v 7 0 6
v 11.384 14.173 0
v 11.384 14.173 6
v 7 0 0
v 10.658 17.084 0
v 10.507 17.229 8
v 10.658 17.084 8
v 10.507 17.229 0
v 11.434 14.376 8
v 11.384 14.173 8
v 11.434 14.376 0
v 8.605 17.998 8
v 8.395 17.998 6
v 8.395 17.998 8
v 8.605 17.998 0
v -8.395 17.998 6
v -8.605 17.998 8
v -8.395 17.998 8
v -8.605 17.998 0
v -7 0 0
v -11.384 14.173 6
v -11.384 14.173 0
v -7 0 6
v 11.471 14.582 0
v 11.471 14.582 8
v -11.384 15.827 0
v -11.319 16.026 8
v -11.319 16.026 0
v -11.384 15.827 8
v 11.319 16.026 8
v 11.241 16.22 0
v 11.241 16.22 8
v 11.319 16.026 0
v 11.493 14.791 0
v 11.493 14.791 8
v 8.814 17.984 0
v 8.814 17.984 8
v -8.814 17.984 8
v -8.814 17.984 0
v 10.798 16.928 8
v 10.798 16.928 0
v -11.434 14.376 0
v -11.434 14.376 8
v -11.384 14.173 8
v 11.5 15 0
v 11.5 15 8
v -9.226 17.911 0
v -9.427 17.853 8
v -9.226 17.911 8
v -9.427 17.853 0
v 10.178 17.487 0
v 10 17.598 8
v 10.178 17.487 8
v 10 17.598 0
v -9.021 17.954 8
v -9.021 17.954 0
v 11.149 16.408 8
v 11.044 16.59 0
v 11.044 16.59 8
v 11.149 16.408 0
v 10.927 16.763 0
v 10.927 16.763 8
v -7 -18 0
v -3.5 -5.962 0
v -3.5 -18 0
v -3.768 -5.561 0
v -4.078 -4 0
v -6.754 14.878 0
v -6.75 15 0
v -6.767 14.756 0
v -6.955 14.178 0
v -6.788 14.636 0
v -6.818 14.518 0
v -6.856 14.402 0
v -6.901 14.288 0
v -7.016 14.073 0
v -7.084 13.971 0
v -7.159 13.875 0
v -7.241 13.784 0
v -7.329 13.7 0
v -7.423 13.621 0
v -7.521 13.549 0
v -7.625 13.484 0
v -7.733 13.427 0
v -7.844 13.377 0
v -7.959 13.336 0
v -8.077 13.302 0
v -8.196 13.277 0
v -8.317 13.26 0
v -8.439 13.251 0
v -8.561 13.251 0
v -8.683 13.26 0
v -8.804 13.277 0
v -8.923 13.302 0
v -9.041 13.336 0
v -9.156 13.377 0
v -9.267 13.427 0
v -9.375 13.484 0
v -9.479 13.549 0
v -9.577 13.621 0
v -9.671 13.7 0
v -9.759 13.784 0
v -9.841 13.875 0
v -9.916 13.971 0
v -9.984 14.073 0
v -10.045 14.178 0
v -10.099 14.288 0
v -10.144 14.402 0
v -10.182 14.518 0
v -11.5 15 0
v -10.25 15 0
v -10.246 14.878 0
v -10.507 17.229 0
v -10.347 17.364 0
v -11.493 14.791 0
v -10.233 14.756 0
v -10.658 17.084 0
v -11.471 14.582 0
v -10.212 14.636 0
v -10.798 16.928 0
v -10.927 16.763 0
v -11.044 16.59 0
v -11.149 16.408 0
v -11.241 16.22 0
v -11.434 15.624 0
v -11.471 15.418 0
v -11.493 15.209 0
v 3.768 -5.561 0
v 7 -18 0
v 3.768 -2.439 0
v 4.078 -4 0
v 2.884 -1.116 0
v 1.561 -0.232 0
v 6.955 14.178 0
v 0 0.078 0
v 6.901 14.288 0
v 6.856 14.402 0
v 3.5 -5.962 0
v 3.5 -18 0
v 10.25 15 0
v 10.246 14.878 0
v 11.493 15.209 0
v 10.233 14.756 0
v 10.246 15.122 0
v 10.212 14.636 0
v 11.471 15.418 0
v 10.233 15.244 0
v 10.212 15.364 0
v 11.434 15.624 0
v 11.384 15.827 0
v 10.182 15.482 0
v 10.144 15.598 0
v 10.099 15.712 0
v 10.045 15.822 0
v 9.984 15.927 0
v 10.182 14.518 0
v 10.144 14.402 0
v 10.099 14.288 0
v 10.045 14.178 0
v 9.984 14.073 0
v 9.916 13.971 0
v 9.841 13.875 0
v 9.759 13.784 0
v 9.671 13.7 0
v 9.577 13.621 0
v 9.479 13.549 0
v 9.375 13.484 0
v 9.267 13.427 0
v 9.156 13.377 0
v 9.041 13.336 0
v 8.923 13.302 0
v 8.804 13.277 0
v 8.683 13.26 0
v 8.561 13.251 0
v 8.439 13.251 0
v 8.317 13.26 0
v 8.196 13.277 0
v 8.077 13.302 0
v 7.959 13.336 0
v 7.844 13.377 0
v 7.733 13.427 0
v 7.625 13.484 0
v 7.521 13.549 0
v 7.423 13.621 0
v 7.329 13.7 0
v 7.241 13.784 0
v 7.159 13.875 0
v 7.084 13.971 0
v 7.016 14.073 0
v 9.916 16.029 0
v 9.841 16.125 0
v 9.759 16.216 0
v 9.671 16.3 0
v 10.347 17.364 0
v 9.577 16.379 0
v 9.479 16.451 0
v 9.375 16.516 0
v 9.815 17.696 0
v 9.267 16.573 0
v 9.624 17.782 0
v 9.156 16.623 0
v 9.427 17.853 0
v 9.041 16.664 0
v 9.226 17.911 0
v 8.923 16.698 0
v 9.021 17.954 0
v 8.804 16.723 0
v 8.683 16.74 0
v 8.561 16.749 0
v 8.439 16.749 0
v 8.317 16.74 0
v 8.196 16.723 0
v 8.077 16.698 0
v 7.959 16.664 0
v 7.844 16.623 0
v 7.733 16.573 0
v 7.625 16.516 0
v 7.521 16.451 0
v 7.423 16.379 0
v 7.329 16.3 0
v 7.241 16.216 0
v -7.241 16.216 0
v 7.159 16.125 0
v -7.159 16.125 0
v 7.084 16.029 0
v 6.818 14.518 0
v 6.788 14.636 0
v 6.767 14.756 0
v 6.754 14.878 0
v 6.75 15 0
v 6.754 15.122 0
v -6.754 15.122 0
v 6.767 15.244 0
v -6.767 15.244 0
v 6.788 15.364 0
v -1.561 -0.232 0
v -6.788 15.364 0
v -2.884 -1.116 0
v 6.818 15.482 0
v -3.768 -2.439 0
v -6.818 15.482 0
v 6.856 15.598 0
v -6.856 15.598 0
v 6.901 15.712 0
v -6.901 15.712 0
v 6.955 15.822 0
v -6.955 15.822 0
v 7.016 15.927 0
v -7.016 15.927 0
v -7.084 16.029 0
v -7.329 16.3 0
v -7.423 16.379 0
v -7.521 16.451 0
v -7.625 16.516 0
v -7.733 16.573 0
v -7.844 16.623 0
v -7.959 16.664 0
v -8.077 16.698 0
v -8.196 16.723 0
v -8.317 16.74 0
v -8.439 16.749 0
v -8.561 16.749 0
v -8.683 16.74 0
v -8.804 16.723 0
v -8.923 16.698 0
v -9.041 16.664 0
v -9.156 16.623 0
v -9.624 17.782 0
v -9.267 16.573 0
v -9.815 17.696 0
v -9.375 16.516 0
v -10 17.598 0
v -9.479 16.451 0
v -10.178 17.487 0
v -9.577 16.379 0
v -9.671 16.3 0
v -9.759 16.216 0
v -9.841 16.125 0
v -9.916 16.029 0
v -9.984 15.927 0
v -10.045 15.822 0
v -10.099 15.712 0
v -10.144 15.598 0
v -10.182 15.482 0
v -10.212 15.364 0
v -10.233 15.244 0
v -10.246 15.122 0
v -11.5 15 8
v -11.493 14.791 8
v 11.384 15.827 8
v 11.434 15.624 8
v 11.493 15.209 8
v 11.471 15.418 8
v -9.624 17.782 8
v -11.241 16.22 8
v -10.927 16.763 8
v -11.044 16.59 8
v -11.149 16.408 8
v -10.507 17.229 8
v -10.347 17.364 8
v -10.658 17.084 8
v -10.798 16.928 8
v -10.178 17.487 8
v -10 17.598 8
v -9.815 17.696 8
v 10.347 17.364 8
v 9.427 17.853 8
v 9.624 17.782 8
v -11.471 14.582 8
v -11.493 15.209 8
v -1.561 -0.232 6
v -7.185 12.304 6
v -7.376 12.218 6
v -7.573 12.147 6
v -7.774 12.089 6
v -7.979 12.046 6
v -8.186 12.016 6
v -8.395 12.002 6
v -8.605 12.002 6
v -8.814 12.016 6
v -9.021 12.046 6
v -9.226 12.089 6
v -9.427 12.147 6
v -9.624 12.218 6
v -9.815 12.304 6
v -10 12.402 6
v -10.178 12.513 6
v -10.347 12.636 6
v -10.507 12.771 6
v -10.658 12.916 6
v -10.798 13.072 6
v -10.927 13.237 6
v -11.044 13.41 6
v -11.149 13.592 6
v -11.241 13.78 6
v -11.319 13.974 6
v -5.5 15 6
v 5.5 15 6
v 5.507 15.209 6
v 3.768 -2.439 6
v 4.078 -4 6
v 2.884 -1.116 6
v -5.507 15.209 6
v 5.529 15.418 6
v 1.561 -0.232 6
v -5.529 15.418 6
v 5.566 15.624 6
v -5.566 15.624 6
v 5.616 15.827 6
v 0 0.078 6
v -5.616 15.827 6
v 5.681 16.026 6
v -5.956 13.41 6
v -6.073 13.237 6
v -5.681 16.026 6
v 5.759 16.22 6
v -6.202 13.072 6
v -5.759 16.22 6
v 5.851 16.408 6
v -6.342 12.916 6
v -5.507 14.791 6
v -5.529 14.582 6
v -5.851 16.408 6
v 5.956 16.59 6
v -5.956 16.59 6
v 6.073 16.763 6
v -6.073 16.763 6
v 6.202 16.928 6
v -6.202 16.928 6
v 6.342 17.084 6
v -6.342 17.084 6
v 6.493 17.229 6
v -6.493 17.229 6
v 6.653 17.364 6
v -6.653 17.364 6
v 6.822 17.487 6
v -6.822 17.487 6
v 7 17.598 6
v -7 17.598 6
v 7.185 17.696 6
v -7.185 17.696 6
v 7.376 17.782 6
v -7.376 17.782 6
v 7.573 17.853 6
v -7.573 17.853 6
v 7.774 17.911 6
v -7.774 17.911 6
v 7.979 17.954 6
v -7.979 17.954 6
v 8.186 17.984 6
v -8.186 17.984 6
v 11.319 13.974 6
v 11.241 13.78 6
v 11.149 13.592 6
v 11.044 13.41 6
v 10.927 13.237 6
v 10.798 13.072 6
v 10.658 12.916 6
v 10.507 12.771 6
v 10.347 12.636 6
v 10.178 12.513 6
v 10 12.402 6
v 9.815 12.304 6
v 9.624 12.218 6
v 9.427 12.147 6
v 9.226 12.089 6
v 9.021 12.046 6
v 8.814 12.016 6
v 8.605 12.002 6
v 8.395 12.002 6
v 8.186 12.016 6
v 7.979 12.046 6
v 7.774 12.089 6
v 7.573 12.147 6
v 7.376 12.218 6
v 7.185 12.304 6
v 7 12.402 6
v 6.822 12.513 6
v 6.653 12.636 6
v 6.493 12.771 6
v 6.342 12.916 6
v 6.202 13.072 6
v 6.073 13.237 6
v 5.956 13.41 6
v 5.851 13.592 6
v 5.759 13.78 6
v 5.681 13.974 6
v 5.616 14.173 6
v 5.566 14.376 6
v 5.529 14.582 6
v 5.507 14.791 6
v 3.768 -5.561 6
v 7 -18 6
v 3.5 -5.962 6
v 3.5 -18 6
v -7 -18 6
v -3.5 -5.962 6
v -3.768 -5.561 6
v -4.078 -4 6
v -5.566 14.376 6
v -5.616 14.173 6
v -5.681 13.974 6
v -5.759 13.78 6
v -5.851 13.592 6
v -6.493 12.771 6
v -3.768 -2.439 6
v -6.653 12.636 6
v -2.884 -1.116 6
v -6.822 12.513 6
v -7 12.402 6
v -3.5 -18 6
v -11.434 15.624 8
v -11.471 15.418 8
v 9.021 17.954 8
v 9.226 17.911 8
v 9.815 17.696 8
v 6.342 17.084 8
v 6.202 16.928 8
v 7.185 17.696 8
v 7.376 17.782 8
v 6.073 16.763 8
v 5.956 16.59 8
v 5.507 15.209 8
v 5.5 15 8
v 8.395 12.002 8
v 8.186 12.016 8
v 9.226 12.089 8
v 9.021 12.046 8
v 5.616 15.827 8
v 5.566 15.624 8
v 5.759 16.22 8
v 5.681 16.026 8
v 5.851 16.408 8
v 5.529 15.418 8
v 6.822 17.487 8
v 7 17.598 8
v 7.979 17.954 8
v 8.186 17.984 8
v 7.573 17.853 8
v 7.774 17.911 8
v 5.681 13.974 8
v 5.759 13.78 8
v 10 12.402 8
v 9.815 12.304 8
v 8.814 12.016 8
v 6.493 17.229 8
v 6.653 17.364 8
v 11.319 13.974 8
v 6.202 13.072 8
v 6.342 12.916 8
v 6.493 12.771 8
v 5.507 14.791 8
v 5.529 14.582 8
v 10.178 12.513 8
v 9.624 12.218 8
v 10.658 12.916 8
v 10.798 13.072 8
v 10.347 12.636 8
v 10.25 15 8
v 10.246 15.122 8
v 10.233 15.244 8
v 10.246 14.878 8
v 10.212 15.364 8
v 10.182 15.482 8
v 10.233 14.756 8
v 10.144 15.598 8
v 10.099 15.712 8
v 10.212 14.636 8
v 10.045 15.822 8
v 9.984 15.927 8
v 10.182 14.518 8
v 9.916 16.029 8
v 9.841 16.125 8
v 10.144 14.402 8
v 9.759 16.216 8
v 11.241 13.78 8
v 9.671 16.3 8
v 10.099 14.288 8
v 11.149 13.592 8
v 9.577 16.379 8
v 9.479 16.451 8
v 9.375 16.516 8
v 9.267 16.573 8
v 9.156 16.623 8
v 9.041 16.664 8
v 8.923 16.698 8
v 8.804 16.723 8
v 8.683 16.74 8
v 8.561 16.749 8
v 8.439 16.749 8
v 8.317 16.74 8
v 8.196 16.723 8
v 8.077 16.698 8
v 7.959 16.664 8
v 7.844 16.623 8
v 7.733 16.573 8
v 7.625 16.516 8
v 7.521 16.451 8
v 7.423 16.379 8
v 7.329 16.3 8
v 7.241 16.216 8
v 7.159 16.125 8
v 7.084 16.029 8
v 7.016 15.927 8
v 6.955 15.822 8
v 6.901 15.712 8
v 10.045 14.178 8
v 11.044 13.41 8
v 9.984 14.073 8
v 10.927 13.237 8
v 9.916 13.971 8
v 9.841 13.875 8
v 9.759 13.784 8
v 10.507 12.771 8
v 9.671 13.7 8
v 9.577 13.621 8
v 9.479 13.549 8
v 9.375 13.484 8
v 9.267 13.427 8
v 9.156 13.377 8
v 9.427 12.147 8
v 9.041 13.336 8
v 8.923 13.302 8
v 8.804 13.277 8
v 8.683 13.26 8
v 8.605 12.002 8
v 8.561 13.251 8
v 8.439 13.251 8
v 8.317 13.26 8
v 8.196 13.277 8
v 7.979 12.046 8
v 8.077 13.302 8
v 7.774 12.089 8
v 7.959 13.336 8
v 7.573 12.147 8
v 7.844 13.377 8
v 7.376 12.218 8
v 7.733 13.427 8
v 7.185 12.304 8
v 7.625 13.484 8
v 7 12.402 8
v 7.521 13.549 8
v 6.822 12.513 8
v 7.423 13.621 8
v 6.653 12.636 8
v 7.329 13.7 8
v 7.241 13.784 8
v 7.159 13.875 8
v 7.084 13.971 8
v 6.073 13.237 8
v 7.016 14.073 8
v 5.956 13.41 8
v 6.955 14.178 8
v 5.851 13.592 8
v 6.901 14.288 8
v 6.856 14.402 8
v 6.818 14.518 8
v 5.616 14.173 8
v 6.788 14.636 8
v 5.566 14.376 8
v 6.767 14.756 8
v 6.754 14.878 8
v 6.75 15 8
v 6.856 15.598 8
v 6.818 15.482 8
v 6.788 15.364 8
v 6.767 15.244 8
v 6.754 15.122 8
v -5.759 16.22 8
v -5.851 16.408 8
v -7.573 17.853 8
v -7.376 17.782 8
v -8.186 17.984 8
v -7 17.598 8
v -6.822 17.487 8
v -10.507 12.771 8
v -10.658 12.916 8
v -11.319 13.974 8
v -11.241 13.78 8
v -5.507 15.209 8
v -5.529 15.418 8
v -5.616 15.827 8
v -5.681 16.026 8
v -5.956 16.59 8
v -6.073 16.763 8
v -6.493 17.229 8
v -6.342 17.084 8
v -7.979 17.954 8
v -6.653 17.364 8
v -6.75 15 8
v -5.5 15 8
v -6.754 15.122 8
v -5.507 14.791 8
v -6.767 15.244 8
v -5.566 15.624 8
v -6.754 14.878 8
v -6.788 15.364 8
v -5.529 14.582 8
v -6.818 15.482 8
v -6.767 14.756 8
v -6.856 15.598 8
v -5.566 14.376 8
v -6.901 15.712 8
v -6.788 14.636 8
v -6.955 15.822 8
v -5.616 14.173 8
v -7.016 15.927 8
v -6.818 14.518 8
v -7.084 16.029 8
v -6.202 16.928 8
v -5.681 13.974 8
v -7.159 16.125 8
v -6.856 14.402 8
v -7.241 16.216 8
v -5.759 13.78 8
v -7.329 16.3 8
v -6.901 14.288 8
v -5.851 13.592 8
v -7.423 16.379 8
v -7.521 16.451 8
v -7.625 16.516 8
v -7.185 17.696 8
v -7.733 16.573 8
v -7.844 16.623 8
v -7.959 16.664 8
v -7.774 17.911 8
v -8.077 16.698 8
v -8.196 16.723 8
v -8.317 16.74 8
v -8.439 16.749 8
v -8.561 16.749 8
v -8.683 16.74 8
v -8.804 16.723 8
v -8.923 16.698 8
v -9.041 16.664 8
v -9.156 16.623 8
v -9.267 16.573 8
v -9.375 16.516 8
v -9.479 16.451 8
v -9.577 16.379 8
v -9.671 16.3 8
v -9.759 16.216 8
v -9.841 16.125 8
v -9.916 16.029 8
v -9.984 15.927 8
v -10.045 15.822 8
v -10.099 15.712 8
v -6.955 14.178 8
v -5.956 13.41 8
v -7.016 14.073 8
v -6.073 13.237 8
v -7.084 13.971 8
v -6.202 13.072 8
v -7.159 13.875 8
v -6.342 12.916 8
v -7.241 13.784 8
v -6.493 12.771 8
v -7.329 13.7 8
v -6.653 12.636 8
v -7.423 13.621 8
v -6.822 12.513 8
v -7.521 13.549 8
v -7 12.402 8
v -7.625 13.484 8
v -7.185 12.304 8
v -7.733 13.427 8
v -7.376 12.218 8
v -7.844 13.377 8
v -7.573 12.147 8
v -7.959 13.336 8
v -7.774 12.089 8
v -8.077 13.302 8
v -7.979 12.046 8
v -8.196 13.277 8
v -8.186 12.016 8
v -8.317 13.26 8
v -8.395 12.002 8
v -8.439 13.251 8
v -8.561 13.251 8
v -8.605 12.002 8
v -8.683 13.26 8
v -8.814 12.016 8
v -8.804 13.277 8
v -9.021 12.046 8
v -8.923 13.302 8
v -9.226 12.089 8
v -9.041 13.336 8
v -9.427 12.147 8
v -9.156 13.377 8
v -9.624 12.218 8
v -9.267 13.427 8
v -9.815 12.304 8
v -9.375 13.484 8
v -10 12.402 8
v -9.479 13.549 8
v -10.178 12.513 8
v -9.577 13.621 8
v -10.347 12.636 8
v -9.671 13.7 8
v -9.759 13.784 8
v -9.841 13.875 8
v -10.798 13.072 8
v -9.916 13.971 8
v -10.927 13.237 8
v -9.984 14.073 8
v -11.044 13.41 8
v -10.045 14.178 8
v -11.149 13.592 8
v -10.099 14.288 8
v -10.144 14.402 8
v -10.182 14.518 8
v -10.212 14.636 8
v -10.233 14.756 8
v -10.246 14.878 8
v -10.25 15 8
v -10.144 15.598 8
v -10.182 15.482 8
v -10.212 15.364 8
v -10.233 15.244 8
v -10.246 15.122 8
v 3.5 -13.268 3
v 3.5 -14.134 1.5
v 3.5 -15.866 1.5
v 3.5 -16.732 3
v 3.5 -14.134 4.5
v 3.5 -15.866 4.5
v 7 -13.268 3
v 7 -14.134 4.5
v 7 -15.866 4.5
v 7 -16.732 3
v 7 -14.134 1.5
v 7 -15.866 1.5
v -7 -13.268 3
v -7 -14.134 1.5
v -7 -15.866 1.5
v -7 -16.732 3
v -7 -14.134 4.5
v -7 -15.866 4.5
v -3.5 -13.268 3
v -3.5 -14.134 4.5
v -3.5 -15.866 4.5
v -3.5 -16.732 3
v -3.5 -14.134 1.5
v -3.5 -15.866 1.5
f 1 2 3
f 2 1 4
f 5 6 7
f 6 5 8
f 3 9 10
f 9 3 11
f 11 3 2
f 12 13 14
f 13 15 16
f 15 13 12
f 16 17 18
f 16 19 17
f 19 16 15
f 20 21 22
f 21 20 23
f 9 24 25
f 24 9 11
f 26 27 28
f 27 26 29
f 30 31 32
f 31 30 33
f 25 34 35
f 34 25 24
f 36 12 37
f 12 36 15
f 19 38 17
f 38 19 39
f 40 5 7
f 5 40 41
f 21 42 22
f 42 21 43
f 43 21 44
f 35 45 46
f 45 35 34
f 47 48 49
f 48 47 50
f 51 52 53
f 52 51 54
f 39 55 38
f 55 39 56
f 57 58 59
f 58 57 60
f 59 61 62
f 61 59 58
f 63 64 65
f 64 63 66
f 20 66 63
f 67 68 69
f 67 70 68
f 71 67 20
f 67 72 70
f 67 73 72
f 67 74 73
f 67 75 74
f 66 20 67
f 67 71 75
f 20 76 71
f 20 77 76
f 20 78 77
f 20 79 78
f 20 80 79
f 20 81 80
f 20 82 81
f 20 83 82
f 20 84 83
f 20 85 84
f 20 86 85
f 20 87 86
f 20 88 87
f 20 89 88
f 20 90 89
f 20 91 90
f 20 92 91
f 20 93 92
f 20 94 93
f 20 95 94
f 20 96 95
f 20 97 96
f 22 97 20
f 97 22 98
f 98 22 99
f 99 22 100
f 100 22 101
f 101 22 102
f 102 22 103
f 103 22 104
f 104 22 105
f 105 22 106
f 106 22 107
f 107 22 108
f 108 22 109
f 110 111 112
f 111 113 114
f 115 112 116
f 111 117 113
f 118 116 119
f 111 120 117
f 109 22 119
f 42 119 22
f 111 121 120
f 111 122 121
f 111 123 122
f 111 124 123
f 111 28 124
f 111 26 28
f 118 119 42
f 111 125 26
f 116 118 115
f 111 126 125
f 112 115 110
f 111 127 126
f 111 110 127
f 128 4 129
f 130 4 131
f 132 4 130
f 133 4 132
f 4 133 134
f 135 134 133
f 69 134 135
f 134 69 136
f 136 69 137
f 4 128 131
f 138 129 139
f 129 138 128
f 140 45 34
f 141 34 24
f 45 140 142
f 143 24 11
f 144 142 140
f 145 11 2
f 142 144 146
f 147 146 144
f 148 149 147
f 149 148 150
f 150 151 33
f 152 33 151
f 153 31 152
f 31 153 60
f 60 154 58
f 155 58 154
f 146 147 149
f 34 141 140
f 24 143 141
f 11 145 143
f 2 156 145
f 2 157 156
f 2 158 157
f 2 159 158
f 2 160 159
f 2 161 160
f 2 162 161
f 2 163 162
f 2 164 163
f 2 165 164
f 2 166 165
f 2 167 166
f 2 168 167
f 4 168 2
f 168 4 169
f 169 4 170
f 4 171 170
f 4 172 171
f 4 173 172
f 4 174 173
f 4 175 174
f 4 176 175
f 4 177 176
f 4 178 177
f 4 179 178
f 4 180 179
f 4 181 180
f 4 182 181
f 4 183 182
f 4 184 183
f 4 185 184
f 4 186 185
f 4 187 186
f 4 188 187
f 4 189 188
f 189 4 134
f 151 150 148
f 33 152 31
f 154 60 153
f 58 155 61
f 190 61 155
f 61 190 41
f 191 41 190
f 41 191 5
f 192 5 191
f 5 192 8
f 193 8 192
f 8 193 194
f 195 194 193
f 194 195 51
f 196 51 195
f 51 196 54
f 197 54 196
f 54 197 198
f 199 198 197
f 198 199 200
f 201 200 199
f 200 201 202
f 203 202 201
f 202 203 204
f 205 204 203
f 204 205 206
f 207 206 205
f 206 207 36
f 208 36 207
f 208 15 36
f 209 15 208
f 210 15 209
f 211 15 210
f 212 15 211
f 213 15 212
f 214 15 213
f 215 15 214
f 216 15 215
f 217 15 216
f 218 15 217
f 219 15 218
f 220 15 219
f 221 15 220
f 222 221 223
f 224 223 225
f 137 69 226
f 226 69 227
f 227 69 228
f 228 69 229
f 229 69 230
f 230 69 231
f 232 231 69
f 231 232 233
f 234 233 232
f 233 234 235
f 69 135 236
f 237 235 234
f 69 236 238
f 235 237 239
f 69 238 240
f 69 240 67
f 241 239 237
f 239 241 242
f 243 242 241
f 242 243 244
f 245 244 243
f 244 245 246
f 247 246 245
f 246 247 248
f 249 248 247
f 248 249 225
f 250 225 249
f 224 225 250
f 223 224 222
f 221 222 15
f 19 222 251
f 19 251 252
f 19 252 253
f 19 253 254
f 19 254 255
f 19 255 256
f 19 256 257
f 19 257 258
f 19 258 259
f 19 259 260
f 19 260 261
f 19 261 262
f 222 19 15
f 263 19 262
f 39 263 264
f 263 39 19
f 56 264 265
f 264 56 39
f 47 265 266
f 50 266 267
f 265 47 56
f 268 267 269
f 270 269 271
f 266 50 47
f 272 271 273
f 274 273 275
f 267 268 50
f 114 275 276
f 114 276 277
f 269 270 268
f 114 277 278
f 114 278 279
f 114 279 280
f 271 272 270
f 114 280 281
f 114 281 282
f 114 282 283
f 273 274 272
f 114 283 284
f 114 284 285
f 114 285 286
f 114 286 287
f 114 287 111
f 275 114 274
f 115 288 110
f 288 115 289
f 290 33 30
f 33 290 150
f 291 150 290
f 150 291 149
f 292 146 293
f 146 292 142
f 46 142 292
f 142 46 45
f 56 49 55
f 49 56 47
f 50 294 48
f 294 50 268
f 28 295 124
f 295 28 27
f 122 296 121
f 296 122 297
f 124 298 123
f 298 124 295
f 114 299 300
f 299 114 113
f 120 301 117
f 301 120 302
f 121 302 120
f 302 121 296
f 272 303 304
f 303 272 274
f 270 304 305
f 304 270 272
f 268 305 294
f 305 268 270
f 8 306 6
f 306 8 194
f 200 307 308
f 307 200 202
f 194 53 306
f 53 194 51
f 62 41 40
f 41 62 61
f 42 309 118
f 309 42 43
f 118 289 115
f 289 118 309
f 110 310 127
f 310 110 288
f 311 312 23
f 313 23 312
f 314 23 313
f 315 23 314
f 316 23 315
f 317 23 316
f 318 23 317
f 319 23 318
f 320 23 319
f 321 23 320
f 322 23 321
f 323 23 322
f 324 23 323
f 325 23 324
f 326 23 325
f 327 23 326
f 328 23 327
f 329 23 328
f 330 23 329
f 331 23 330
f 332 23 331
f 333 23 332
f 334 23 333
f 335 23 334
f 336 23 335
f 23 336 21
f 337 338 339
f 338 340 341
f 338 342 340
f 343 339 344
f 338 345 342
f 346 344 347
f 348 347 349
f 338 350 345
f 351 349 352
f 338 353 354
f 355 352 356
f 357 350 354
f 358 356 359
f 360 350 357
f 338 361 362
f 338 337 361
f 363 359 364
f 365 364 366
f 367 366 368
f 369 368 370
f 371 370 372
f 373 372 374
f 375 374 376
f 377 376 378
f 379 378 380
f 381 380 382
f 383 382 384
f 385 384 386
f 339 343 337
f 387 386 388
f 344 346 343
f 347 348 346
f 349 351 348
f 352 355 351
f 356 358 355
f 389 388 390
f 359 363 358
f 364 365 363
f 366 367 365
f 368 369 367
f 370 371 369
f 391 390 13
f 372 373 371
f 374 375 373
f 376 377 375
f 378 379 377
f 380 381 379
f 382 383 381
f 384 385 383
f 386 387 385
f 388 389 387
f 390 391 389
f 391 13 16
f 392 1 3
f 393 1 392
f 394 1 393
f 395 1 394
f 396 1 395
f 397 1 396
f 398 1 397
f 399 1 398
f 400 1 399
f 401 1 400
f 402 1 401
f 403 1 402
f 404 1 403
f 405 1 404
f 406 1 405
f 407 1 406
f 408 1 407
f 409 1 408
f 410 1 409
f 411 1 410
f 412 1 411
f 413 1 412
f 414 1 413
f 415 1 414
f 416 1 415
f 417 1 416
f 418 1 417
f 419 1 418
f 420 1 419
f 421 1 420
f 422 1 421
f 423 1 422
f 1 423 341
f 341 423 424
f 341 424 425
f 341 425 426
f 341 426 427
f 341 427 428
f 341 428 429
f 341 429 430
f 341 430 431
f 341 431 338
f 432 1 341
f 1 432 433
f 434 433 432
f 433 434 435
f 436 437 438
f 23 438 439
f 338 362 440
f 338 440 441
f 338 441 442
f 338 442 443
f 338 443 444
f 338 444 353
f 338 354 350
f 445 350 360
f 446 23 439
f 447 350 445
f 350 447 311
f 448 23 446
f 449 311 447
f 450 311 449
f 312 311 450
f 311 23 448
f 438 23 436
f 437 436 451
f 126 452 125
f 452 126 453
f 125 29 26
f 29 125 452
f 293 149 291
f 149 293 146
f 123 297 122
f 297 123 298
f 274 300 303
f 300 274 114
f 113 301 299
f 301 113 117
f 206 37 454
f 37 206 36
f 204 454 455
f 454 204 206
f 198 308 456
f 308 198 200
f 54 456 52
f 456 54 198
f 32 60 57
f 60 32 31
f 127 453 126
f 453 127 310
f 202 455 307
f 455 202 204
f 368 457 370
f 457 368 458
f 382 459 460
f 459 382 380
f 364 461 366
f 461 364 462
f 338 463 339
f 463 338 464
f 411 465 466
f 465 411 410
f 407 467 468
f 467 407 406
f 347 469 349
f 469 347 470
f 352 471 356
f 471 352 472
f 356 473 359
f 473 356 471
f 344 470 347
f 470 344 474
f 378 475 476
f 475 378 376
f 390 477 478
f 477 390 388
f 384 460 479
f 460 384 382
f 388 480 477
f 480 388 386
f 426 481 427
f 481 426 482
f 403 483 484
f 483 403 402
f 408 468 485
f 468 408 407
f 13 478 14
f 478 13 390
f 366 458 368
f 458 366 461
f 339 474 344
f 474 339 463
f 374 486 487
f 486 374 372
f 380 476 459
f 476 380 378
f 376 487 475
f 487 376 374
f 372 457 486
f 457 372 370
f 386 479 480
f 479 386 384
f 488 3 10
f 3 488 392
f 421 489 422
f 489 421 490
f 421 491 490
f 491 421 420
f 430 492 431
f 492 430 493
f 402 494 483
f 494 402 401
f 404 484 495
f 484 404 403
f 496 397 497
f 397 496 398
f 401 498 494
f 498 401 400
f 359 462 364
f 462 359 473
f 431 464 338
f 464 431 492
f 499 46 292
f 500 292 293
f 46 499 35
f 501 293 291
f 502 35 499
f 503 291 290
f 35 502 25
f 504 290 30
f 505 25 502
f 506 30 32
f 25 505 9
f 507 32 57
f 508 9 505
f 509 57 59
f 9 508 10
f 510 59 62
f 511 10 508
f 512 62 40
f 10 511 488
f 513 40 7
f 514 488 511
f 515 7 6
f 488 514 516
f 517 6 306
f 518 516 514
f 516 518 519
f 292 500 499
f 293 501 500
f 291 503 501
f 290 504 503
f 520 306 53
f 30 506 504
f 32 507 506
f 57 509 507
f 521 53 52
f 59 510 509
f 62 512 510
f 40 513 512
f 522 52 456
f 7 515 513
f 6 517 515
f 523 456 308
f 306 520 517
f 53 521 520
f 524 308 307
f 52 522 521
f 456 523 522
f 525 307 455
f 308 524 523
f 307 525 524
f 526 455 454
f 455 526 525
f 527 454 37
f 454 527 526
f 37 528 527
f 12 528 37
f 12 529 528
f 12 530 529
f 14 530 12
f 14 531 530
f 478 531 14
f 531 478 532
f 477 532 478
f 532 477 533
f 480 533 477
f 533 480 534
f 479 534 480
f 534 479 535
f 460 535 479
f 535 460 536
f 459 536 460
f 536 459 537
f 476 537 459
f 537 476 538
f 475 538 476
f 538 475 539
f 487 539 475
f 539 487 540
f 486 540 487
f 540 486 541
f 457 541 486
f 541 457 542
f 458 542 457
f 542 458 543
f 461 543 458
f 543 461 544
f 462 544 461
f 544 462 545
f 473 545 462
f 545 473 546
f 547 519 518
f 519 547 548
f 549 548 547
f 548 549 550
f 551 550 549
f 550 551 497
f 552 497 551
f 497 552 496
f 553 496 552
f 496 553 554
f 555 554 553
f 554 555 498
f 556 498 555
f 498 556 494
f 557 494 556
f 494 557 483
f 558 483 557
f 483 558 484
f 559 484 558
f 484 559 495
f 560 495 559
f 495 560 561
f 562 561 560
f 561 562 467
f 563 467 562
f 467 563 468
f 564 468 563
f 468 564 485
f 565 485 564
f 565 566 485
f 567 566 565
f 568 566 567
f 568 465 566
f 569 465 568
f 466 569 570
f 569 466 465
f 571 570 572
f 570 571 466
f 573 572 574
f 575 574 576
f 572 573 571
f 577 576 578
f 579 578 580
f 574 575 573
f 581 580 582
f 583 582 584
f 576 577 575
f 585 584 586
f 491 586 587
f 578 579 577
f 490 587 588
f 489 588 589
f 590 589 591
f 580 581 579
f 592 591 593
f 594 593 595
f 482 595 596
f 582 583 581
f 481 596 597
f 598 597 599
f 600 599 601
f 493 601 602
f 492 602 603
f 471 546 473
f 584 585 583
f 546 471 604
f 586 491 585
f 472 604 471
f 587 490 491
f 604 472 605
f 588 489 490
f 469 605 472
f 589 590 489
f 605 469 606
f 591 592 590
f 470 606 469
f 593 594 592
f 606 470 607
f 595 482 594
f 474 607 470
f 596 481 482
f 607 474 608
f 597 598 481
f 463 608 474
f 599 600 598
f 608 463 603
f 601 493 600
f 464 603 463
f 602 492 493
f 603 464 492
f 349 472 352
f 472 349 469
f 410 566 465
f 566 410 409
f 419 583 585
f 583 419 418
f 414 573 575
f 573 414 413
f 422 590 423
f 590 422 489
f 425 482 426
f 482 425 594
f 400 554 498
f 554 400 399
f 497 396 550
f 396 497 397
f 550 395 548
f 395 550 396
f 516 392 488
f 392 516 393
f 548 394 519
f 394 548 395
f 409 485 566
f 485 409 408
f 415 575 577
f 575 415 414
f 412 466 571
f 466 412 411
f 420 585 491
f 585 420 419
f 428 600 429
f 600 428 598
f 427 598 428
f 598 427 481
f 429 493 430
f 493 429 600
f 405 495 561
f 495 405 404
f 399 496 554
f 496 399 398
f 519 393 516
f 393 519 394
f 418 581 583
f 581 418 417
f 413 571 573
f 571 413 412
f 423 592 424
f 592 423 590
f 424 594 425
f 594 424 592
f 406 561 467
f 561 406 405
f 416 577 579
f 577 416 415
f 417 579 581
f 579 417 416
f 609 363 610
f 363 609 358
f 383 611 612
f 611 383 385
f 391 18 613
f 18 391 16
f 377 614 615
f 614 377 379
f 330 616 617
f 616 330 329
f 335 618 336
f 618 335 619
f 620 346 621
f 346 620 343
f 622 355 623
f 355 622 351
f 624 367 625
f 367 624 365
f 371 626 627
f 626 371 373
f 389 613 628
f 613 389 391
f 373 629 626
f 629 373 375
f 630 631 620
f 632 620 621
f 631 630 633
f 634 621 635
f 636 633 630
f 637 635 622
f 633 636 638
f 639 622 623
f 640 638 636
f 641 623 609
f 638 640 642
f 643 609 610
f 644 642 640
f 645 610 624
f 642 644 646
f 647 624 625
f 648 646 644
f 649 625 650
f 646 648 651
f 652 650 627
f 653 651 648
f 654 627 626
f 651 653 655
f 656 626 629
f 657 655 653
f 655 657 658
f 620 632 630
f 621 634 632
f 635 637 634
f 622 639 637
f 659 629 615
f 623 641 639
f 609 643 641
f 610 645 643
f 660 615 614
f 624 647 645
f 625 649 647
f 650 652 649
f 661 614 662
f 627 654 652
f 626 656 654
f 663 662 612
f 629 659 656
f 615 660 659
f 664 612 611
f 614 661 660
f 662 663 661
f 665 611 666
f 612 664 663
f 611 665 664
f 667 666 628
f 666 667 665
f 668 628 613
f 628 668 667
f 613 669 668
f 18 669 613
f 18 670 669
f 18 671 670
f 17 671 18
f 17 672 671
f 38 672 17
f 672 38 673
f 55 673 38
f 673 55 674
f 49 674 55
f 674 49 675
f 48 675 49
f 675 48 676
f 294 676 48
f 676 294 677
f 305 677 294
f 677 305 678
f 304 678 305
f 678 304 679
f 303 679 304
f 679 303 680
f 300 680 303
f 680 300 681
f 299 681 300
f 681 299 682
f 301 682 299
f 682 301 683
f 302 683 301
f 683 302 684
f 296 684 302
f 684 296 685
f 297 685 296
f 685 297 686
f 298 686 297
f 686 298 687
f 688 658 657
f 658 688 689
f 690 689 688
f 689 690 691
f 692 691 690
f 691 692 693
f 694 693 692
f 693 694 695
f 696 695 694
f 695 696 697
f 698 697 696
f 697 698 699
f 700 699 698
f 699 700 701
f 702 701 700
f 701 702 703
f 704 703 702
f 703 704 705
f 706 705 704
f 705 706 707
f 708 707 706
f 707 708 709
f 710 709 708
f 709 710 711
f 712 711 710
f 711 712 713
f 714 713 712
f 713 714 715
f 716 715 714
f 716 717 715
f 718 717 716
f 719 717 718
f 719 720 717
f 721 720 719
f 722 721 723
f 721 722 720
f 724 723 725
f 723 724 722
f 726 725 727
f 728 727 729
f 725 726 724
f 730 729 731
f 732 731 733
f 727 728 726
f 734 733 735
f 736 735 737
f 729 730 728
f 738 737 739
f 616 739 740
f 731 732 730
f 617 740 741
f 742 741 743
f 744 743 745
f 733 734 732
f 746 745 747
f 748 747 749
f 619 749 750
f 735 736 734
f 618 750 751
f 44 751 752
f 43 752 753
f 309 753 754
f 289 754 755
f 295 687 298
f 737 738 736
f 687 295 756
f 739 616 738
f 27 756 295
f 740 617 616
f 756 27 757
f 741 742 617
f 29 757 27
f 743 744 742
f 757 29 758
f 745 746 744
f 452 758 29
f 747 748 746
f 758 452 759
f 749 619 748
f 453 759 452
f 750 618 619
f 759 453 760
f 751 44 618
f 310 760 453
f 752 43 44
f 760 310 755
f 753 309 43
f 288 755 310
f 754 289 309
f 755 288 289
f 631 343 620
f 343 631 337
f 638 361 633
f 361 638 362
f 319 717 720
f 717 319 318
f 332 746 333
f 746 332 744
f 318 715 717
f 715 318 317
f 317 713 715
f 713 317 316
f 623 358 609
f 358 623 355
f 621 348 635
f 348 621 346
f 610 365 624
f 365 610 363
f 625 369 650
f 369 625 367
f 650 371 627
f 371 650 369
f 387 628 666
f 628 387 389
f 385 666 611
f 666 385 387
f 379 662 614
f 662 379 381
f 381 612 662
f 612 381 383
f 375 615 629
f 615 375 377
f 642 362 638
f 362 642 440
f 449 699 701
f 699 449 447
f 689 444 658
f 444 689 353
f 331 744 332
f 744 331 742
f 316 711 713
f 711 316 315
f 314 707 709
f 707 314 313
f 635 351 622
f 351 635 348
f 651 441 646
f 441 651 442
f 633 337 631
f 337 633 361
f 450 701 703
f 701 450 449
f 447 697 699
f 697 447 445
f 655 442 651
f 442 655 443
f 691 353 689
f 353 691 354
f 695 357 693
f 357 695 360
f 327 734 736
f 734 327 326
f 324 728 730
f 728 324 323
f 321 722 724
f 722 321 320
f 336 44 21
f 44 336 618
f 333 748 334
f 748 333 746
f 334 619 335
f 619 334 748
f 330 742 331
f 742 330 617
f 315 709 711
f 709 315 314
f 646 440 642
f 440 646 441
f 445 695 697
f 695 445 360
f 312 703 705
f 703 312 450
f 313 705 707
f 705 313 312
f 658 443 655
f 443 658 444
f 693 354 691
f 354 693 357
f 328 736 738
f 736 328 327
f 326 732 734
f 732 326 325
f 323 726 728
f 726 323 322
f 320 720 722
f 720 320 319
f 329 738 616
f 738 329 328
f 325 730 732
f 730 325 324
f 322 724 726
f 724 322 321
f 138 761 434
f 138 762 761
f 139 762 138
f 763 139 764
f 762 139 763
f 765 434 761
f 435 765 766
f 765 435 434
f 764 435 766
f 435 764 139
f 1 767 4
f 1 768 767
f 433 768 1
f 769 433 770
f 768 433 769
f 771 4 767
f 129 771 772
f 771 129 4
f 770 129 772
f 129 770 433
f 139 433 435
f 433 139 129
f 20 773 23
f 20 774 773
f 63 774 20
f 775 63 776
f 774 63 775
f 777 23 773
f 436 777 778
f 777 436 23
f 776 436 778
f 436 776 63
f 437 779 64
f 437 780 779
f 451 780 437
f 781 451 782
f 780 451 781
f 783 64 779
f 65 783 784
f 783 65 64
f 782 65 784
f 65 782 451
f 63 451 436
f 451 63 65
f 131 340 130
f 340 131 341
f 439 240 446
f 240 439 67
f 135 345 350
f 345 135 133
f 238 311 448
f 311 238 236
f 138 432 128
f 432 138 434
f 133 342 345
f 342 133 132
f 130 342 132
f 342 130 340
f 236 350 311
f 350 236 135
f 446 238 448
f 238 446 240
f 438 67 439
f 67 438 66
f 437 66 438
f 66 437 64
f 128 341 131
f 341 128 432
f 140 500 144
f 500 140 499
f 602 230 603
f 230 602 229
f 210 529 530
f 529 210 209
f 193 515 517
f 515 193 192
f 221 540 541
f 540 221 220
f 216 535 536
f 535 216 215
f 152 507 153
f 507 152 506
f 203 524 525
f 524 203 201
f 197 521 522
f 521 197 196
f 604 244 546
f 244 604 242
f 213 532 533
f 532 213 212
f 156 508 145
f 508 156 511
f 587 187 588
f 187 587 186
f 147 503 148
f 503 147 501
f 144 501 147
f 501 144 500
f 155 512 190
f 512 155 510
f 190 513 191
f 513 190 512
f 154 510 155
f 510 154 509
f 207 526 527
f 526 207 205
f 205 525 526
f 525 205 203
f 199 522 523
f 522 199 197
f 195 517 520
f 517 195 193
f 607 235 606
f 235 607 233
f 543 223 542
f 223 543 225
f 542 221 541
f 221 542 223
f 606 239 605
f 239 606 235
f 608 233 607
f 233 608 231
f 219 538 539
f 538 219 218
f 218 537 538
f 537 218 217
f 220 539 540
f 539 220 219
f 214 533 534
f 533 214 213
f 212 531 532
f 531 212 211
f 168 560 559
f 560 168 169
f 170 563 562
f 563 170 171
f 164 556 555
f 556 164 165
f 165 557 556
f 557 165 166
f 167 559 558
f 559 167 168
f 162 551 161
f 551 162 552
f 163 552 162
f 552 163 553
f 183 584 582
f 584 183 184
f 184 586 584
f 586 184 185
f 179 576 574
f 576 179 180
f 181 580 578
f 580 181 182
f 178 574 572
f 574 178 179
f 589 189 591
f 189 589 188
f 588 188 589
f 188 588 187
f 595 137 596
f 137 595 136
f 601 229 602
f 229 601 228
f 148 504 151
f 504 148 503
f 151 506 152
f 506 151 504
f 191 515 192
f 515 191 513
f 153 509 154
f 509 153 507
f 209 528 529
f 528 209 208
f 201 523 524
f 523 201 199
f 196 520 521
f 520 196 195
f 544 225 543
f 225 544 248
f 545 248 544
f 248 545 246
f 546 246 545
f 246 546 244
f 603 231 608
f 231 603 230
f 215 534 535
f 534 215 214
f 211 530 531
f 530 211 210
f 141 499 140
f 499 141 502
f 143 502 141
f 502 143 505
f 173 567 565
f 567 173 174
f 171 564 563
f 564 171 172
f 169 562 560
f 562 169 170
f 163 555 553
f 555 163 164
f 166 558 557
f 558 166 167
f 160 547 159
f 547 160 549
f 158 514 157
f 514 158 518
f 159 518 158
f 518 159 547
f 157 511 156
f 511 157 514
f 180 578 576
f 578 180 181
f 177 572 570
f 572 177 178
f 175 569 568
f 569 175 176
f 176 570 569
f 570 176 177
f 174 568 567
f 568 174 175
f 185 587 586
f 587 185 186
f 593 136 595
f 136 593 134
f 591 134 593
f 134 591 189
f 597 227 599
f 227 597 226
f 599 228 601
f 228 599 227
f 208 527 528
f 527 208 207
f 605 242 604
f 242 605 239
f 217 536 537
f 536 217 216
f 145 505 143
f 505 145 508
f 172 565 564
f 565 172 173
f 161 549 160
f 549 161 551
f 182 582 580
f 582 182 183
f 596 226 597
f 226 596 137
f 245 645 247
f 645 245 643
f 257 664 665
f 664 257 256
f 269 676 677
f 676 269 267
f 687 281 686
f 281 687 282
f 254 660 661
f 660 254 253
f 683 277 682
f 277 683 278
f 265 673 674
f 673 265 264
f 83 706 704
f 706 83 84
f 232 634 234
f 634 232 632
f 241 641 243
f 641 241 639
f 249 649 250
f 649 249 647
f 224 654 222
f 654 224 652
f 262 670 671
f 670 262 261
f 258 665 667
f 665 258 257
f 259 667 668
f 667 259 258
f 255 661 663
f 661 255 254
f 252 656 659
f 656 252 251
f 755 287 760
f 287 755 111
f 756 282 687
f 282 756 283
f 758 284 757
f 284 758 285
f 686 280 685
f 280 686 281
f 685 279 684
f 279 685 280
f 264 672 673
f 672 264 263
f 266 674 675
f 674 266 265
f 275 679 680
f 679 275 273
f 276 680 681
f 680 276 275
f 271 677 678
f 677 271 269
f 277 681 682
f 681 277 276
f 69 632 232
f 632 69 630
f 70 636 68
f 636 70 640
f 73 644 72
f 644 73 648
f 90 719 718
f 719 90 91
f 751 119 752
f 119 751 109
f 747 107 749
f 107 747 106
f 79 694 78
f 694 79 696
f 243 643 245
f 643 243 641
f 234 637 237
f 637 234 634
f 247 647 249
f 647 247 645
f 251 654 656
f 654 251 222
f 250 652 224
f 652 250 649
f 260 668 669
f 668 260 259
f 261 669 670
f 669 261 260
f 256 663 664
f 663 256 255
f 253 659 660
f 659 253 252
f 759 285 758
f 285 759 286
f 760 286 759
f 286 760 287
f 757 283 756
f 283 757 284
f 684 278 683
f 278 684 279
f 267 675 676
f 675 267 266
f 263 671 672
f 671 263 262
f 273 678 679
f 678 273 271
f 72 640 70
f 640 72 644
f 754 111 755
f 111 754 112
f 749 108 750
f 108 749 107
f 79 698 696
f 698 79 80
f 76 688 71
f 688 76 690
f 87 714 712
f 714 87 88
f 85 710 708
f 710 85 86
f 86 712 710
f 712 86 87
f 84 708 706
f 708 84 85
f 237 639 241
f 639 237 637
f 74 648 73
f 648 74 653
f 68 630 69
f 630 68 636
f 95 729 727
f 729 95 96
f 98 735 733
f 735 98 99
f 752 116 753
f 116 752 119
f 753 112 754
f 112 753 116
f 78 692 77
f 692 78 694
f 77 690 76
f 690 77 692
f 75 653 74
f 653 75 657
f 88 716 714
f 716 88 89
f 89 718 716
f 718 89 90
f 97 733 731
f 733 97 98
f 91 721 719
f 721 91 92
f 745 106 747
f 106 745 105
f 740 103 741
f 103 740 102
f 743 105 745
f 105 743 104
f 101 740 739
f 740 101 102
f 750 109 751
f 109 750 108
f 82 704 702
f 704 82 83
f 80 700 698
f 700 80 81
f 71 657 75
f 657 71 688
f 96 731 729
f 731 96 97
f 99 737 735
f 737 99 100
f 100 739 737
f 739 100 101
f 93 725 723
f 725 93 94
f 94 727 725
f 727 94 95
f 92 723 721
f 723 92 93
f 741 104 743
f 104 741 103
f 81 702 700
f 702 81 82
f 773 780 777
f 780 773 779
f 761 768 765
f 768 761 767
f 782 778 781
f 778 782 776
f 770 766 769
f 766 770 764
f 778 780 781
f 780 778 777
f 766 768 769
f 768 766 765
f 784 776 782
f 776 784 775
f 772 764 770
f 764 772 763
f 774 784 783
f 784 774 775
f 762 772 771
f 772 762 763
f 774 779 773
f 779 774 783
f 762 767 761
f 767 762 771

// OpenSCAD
// file: polyhole.scad
// The Cylinder is dead! Long live the Cylinder!
// A module for a polyhole by radius, based on Nophead's work.

module polyhole(h, r, cent = false)
{
    n = max(round(4 * r), 3);
    cylinder(h = h, r = r / cos(180 / n), $fn = n, center = cent);
}
// main file
//X-axis endstop mount.

use<polyhole.scad>

EndstopXZ();

module EndstopXZ()
{
    difference()
    {
        union()
        {
            hull()
            {
                translate([0, 1.5, 3])
                    cube([14, 3, 6], center = true);
                translate([8.5, 15, 0])
                    cylinder(h = 6, r = 3, $fn = 90);
                translate([-8.5, 15, 0])
                    cylinder(h = 6, r = 3, $fn = 90);
            }
            translate([8.5, 15, 0])
                cylinder(h = 8, r = 3, $fn = 90);
            translate([-8.5, 15, 0])
                cylinder(h = 8, r = 3, $fn = 90);
            translate([5.25, -9, 3])
                cube([3.5, 18, 6], center = true);
            translate([-5.25, -9, 3])
                cube([3.5, 18, 6], center = true);
            translate([0, -2, 3])
                cube([9, 5, 6], center = true);
        }
        translate([0, -4, 0])
            polyhole(6, 4);
        translate([8.5, 15, 0])
            cylinder(h = 8, r = 1.75, $fn = 90);
        translate([-8.5, 15, 0])
            cylinder(h = 8, r = 1.75, $fn = 90);
        translate([-10, -15, 3])
            rotate([90, 0, 90])
                polyhole(20, 1.5);
    }
}
